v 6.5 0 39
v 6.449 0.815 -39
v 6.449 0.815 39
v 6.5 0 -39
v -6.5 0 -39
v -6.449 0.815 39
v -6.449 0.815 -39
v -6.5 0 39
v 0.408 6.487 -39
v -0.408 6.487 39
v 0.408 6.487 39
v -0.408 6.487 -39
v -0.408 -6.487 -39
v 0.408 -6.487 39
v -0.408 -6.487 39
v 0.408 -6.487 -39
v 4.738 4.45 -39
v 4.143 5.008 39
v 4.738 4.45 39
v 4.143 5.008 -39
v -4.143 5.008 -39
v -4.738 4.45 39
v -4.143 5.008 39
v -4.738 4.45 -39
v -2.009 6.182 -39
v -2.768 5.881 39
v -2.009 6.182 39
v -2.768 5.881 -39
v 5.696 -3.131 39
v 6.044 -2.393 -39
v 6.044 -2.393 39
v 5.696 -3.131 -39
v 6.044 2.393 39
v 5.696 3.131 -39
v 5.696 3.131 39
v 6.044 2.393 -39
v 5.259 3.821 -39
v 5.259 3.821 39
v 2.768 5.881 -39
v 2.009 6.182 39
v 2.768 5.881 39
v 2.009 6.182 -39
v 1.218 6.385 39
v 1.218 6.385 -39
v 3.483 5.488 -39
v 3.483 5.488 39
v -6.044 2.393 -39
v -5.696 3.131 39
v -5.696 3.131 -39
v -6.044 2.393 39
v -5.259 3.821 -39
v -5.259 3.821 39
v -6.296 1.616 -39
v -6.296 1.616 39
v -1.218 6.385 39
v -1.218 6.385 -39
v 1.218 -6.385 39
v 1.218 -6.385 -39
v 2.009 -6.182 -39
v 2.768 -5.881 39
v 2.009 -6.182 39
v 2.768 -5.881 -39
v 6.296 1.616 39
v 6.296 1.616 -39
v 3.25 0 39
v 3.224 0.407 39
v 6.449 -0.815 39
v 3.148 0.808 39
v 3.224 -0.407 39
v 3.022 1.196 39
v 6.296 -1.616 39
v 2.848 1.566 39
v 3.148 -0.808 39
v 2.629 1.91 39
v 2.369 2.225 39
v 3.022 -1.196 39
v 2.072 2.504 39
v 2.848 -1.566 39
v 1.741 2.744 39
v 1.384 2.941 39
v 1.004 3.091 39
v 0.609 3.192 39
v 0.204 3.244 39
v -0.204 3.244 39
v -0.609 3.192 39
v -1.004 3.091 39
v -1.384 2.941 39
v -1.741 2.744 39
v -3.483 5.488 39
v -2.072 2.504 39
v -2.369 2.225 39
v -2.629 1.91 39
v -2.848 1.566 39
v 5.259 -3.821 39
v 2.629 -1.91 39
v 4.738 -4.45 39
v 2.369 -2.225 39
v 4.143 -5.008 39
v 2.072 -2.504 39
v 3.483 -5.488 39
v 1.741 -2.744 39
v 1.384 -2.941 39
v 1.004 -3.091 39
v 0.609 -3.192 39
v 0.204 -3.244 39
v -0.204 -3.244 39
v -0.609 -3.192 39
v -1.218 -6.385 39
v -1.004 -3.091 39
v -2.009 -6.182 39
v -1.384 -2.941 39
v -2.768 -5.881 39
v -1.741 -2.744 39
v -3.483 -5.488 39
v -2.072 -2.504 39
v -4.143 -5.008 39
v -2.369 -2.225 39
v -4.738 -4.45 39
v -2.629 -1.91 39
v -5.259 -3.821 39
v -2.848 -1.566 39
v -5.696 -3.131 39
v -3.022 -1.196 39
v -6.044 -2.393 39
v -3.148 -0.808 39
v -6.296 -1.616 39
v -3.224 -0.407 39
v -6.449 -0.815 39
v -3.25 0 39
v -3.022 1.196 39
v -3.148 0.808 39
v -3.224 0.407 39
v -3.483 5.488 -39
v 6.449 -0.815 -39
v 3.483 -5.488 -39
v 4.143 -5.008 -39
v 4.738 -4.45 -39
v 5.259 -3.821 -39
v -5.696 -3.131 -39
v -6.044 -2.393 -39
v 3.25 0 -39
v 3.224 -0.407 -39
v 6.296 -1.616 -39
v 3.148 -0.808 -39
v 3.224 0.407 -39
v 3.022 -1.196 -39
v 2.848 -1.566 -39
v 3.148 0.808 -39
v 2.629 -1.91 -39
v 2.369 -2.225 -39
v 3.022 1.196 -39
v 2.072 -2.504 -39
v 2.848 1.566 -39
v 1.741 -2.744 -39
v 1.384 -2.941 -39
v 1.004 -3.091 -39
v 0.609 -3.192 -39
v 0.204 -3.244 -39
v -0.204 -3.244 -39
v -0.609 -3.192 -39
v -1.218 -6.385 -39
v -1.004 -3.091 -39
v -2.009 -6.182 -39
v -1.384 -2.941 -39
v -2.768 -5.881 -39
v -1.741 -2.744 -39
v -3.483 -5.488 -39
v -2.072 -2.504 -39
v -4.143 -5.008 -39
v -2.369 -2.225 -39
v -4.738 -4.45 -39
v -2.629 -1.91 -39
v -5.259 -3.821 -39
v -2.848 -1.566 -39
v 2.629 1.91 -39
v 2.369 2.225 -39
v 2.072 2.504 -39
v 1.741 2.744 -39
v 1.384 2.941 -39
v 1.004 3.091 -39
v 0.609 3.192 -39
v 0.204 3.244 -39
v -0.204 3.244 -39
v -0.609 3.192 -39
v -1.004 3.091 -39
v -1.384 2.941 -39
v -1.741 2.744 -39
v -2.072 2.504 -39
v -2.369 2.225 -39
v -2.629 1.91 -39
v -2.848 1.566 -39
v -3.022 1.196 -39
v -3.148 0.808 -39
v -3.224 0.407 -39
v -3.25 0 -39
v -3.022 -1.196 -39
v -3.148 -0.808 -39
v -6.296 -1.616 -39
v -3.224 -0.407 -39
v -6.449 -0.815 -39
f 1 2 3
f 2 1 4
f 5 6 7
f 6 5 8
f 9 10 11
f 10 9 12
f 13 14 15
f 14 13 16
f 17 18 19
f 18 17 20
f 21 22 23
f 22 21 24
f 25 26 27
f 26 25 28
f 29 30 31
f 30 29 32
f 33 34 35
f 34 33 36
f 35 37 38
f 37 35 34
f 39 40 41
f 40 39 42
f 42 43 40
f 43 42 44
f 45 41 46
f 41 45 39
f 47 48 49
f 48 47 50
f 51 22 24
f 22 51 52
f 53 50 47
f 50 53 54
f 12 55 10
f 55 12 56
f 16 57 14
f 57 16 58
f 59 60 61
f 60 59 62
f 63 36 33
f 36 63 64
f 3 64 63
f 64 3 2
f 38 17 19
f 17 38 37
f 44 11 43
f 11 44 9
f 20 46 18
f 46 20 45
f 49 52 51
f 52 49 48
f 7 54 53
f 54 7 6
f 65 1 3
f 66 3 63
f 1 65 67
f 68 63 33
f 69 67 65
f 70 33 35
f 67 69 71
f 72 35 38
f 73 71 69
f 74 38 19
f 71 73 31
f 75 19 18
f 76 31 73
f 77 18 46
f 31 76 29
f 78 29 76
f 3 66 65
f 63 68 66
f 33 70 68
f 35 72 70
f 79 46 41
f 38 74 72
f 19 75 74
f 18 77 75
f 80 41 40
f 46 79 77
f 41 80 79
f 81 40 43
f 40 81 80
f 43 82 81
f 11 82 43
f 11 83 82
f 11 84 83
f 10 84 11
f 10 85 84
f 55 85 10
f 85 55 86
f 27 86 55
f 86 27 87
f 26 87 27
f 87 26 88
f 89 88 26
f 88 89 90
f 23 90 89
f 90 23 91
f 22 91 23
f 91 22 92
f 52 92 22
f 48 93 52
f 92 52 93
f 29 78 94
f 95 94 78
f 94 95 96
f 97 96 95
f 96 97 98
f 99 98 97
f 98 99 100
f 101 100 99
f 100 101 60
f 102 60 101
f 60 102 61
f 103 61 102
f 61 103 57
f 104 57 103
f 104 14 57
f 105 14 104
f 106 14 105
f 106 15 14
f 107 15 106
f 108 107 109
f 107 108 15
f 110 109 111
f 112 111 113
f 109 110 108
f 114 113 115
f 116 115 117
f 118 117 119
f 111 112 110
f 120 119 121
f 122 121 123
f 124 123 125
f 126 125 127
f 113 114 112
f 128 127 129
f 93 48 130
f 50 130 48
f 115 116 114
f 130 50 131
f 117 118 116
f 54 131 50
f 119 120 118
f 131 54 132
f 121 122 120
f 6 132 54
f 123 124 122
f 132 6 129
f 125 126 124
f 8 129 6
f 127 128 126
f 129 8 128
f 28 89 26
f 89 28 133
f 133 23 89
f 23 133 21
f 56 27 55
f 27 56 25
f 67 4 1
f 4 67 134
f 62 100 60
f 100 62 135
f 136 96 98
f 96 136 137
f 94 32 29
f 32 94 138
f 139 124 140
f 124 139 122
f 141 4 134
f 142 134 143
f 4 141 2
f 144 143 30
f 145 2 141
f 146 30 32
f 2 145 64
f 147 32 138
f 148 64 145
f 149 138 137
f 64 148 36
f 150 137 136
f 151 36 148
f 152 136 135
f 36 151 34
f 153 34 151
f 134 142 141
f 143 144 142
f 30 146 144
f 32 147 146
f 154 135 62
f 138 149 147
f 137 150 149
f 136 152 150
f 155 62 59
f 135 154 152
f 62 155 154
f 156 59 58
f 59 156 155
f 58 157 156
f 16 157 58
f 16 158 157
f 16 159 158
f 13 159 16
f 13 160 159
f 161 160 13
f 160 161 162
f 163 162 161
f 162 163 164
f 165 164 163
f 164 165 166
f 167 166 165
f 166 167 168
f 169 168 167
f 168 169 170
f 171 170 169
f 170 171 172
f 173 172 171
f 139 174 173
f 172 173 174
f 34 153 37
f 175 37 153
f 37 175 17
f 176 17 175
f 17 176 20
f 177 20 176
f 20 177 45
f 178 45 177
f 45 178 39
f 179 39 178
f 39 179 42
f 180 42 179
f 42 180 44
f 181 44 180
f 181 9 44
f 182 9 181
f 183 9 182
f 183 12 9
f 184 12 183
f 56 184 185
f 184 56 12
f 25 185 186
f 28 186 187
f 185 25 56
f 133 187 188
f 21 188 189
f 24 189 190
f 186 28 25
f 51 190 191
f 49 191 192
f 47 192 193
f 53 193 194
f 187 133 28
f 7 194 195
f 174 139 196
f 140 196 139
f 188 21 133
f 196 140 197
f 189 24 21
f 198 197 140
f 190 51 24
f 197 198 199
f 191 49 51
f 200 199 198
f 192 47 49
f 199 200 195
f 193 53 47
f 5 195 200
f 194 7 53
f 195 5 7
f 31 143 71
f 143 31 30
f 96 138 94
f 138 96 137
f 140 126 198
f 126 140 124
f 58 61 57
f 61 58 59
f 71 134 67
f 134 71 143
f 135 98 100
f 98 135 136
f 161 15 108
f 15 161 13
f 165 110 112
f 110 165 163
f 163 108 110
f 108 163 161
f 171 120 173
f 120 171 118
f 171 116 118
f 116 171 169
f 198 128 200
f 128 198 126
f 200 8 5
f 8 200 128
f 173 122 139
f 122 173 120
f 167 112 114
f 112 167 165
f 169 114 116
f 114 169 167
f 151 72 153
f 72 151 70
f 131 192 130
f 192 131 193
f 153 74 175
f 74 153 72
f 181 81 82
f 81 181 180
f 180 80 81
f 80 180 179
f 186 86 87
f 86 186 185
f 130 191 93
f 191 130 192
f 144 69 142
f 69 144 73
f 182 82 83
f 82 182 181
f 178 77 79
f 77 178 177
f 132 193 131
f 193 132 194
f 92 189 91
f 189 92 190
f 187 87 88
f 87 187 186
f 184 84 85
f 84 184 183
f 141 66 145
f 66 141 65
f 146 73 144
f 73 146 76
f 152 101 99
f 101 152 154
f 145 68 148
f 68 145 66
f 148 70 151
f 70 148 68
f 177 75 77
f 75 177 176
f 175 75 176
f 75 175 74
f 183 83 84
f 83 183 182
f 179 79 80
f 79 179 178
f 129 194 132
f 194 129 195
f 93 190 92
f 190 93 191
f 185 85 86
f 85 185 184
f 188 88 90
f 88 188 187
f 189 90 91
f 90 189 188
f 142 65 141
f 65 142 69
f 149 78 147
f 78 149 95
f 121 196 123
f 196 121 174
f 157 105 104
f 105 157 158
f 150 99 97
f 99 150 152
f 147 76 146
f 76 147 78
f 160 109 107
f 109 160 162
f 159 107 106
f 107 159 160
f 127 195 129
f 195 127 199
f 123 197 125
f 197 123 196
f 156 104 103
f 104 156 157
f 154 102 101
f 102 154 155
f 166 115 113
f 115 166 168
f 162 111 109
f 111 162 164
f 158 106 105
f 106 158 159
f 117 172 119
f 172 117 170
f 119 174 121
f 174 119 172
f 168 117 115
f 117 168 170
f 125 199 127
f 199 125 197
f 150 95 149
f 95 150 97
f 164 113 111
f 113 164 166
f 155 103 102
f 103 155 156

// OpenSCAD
$fn = 50;


difference() {
	union() {
		translate(v = [0, 0, -39.0000000000]) {
			cylinder(h = 78, r = 6.5000000000);
		}
	}
	union() {
		translate(v = [0, 0, -100.0000000000]) {
			cylinder(h = 200, r = 3.2500000000);
		}
	}
}
